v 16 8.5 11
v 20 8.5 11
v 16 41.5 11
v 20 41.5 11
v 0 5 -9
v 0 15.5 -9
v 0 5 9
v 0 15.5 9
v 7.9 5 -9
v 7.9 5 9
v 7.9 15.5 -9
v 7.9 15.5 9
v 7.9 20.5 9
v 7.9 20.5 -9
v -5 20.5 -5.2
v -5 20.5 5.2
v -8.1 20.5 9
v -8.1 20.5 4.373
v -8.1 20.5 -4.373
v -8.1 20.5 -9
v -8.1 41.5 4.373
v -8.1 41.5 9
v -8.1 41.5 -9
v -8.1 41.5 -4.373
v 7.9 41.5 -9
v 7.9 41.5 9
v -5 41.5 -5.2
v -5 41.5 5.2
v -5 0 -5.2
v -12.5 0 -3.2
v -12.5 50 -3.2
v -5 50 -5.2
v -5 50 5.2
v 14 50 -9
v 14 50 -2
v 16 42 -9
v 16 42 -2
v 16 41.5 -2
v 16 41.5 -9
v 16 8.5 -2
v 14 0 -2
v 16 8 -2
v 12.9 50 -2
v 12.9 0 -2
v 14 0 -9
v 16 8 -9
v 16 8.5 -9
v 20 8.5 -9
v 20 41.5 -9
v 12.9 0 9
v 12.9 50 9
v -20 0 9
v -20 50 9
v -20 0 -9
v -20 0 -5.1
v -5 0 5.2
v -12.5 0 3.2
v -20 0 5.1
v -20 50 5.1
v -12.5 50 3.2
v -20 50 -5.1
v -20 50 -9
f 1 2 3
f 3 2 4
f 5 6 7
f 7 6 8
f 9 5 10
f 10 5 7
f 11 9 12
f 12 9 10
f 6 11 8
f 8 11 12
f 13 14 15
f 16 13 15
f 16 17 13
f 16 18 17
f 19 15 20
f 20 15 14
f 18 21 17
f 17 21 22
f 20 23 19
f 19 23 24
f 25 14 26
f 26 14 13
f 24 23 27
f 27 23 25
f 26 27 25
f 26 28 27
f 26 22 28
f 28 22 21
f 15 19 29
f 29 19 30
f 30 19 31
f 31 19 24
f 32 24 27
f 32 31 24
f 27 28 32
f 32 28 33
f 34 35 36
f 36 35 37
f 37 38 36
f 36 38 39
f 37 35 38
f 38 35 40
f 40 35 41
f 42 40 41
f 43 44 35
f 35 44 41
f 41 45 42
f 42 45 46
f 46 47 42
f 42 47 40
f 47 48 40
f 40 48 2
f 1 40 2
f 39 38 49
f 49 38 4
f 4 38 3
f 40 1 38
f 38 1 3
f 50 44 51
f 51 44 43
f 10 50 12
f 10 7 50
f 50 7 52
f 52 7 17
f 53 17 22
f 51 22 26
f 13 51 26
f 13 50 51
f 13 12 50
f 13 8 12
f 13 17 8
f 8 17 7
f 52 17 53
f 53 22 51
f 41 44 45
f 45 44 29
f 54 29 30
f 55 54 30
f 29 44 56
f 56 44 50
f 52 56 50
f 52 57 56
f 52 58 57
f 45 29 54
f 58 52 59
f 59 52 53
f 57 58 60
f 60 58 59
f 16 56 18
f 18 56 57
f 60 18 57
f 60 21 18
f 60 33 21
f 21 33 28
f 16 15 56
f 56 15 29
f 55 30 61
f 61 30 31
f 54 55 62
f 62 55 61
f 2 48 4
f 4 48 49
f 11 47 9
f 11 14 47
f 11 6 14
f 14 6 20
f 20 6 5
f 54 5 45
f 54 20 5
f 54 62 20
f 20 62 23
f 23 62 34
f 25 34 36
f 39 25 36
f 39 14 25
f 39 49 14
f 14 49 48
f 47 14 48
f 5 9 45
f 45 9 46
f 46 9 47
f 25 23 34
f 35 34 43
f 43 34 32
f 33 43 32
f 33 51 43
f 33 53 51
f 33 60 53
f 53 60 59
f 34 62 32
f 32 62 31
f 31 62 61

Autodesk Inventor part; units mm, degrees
ref_plane "YZ Plane" through (0, 0, 0) normal (1, 0, 0) x (0, 1, 0)
ref_plane "XZ Plane" through (0, 0, 0) normal (0, 1, 0) x (-1, 0, 0)
ref_plane "XY Plane" through (0, 0, 0) normal (0, 0, 1) x (1, 0, 0)
sketch "草图1" plane through (0, 0, 0) normal (0, 1, 0) x (-1, 0, 0)
  line L0 (20, 9) -> (-20, 9)
  line L1 (-20, 9) -> (-20, -9)
  line L2 (-20, -9) -> (20, -9)
  line L3 (20, 5.1) -> (12.5, 3.2)
  line L4 (12.5, 3.2) -> (5, 5.2)
  line L5 (5, 0) -> (0, 0)
  line L6 (20, -5.1) -> (12.5, -3.2)
  line L7 (12.5, -3.2) -> (5, -5.2)
  line L8 (-13, 9) -> (-13, -9)
  line L9 (20, -9) -> (20, -5.1)
  line L10 (20, 5.1) -> (20, 9)
  line L11 (5, 5.2) -> (5, -5.2)
  line L12 (5, -5.2) -> (-20, -5.2)
  line L13 (-12.9, 9) -> (-12.9, -2)
  line L14 (-12.9, -2) -> (-16, -2)
  line L15 (-16, -2) -> (-16, 9)
  line L16 (-12.9, -2) -> (-16, -2)
  line L17 (-16, -2) -> (-16, 9)
  line L18 (-16, 9) -> (-12.9, 9)
  line L19 (-12.9, 9) -> (-12.9, -2)
  dimension "d0" = 18
  dimension "d1" = 40
  dimension "d4" = 3.9
  dimension "d6" = 5.8
  dimension "d8" = 3.8
  dimension "d13" = 33
  dimension "d14" = 11
  dimension "d15" = 3.1
  dimension "d16" = 4
  dimension "d39" = 9
extrude "拉伸1" add sketch "草图1" along normal blind 50
extrude "拉伸2" cut sketch "草图1" along normal blind 50 contours L13 L14 L8 L0 | L8 L14 L15 L0
sketch "草图2" plane through (20, 0, 9) normal (0, 0, 1) x (1, 0, 0)
  line L0 (-4, 50) -> (-4, 0) projected
  line L1 (-4, 0) -> (0, 0) projected
  line L2 (0, 0) -> (0, 50) projected
  line L3 (-4, 50) -> (0, 50) projected
  line L4 (-4, 50) -> (-4, 0) projected
  line L5 (0, 0) -> (0, 50) projected
  line L6 (-4, 8.5) -> (0, 8.5)
  line L7 (0, 8.5) -> (0, 41.5)
  line L8 (0, 41.5) -> (-4, 41.5)
  line L9 (-4, 41.5) -> (-4, 8.5)
  point P0 (-20, 0)
  point P1 (-4, 25)
  dimension "d19" = 33
extrude "拉伸3" cut sketch "草图2" against normal up to next contours L3 L2 L8 L0 | L6 L2 L1 L0
chamfer "倒角1" distance 2 distance2 8 1 edges at (16, 0, -5.5) measured on face at (6.9333, 0, 4.0667)
chamfer "倒角2" distance 2 distance2 8 1 edges at (16, 50, -5.5) measured on face at (6.9333, 50, 4.0667)
sketch "草图3" plane through (-20, 0, 9) normal (0, 0, 1) x (1, 0, 0)
  line L0 (15, 0) -> (15, 50) projected
  line L1 (15, 0) -> (15, 50) projected
  line L2 (32.9, 0) -> (32.9, 50) projected
  line L3 (11.9, 20.5) -> (27.9, 20.5)
  line L4 (27.9, 20.5) -> (27.9, 41.5)
  line L5 (27.9, 41.5) -> (11.9, 41.5)
  line L6 (11.9, 41.5) -> (11.9, 20.5)
  line L7 (0, 50) -> (32.9, 50) projected
  line L8 (20, 5) -> (27.9, 5)
  line L9 (27.9, 5) -> (27.9, 15.5)
  line L10 (27.9, 15.5) -> (20, 15.5)
  line L11 (20, 15.5) -> (20, 5)
  line L12 (0, 0) -> (32.9, 0) projected
  point P0 (20, 0)
  dimension "d28" = 21
  dimension "d29" = 8.5
  dimension "d30" = 5
  dimension "d32" = 21
  dimension "d35" = 5
  dimension "d36" = 5
  dimension "d37" = 5
  dimension "d38" = 5
extrude "拉伸4" cut sketch "草图3" against normal blind 50 contours L3 L6 L5 L0 | L0 L5 L4 L3 | L11 L10 L9 L8
sketch "草图4" plane through (-20, 0, 9) normal (0, 0, 1) x (1, 0, 0)
  line L0 (27.9, 15.5) -> (27.9, 5) projected
  line L1 (27.9, 5) -> (20, 5) projected
  line L2 (20, 5) -> (20, 15.5) projected
  line L3 (20, 15.5) -> (27.9, 15.5) projected
  line L4 (27.9, 41.5) -> (27.9, 20.5) projected
  line L5 (27.9, 20.5) -> (11.9, 20.5) projected
  line L6 (11.9, 20.5) -> (11.9, 41.5) projected
  line L7 (11.9, 41.5) -> (27.9, 41.5) projected
  line L8 (32.9, 0) -> (32.9, 50) projected
  line L9 (0, 50) -> (32.9, 50) projected
  line L10 (0, 0) -> (0, 50) projected
  line L11 (0, 0) -> (32.9, 0) projected
  line L12 (36, 8.5) -> (40, 8.5) projected
  line L13 (40, 8.5) -> (40, 41.5) projected
  line L14 (40, 41.5) -> (36, 41.5) projected
  line L15 (36, 41.5) -> (36, 8.5) projected
  point P0 (20, 0)
extrude "拉伸6" add sketch "草图4" along normal blind 2 contours L15 L14 L13 L12
properties part number "latte_d435_frame_new_legs"
